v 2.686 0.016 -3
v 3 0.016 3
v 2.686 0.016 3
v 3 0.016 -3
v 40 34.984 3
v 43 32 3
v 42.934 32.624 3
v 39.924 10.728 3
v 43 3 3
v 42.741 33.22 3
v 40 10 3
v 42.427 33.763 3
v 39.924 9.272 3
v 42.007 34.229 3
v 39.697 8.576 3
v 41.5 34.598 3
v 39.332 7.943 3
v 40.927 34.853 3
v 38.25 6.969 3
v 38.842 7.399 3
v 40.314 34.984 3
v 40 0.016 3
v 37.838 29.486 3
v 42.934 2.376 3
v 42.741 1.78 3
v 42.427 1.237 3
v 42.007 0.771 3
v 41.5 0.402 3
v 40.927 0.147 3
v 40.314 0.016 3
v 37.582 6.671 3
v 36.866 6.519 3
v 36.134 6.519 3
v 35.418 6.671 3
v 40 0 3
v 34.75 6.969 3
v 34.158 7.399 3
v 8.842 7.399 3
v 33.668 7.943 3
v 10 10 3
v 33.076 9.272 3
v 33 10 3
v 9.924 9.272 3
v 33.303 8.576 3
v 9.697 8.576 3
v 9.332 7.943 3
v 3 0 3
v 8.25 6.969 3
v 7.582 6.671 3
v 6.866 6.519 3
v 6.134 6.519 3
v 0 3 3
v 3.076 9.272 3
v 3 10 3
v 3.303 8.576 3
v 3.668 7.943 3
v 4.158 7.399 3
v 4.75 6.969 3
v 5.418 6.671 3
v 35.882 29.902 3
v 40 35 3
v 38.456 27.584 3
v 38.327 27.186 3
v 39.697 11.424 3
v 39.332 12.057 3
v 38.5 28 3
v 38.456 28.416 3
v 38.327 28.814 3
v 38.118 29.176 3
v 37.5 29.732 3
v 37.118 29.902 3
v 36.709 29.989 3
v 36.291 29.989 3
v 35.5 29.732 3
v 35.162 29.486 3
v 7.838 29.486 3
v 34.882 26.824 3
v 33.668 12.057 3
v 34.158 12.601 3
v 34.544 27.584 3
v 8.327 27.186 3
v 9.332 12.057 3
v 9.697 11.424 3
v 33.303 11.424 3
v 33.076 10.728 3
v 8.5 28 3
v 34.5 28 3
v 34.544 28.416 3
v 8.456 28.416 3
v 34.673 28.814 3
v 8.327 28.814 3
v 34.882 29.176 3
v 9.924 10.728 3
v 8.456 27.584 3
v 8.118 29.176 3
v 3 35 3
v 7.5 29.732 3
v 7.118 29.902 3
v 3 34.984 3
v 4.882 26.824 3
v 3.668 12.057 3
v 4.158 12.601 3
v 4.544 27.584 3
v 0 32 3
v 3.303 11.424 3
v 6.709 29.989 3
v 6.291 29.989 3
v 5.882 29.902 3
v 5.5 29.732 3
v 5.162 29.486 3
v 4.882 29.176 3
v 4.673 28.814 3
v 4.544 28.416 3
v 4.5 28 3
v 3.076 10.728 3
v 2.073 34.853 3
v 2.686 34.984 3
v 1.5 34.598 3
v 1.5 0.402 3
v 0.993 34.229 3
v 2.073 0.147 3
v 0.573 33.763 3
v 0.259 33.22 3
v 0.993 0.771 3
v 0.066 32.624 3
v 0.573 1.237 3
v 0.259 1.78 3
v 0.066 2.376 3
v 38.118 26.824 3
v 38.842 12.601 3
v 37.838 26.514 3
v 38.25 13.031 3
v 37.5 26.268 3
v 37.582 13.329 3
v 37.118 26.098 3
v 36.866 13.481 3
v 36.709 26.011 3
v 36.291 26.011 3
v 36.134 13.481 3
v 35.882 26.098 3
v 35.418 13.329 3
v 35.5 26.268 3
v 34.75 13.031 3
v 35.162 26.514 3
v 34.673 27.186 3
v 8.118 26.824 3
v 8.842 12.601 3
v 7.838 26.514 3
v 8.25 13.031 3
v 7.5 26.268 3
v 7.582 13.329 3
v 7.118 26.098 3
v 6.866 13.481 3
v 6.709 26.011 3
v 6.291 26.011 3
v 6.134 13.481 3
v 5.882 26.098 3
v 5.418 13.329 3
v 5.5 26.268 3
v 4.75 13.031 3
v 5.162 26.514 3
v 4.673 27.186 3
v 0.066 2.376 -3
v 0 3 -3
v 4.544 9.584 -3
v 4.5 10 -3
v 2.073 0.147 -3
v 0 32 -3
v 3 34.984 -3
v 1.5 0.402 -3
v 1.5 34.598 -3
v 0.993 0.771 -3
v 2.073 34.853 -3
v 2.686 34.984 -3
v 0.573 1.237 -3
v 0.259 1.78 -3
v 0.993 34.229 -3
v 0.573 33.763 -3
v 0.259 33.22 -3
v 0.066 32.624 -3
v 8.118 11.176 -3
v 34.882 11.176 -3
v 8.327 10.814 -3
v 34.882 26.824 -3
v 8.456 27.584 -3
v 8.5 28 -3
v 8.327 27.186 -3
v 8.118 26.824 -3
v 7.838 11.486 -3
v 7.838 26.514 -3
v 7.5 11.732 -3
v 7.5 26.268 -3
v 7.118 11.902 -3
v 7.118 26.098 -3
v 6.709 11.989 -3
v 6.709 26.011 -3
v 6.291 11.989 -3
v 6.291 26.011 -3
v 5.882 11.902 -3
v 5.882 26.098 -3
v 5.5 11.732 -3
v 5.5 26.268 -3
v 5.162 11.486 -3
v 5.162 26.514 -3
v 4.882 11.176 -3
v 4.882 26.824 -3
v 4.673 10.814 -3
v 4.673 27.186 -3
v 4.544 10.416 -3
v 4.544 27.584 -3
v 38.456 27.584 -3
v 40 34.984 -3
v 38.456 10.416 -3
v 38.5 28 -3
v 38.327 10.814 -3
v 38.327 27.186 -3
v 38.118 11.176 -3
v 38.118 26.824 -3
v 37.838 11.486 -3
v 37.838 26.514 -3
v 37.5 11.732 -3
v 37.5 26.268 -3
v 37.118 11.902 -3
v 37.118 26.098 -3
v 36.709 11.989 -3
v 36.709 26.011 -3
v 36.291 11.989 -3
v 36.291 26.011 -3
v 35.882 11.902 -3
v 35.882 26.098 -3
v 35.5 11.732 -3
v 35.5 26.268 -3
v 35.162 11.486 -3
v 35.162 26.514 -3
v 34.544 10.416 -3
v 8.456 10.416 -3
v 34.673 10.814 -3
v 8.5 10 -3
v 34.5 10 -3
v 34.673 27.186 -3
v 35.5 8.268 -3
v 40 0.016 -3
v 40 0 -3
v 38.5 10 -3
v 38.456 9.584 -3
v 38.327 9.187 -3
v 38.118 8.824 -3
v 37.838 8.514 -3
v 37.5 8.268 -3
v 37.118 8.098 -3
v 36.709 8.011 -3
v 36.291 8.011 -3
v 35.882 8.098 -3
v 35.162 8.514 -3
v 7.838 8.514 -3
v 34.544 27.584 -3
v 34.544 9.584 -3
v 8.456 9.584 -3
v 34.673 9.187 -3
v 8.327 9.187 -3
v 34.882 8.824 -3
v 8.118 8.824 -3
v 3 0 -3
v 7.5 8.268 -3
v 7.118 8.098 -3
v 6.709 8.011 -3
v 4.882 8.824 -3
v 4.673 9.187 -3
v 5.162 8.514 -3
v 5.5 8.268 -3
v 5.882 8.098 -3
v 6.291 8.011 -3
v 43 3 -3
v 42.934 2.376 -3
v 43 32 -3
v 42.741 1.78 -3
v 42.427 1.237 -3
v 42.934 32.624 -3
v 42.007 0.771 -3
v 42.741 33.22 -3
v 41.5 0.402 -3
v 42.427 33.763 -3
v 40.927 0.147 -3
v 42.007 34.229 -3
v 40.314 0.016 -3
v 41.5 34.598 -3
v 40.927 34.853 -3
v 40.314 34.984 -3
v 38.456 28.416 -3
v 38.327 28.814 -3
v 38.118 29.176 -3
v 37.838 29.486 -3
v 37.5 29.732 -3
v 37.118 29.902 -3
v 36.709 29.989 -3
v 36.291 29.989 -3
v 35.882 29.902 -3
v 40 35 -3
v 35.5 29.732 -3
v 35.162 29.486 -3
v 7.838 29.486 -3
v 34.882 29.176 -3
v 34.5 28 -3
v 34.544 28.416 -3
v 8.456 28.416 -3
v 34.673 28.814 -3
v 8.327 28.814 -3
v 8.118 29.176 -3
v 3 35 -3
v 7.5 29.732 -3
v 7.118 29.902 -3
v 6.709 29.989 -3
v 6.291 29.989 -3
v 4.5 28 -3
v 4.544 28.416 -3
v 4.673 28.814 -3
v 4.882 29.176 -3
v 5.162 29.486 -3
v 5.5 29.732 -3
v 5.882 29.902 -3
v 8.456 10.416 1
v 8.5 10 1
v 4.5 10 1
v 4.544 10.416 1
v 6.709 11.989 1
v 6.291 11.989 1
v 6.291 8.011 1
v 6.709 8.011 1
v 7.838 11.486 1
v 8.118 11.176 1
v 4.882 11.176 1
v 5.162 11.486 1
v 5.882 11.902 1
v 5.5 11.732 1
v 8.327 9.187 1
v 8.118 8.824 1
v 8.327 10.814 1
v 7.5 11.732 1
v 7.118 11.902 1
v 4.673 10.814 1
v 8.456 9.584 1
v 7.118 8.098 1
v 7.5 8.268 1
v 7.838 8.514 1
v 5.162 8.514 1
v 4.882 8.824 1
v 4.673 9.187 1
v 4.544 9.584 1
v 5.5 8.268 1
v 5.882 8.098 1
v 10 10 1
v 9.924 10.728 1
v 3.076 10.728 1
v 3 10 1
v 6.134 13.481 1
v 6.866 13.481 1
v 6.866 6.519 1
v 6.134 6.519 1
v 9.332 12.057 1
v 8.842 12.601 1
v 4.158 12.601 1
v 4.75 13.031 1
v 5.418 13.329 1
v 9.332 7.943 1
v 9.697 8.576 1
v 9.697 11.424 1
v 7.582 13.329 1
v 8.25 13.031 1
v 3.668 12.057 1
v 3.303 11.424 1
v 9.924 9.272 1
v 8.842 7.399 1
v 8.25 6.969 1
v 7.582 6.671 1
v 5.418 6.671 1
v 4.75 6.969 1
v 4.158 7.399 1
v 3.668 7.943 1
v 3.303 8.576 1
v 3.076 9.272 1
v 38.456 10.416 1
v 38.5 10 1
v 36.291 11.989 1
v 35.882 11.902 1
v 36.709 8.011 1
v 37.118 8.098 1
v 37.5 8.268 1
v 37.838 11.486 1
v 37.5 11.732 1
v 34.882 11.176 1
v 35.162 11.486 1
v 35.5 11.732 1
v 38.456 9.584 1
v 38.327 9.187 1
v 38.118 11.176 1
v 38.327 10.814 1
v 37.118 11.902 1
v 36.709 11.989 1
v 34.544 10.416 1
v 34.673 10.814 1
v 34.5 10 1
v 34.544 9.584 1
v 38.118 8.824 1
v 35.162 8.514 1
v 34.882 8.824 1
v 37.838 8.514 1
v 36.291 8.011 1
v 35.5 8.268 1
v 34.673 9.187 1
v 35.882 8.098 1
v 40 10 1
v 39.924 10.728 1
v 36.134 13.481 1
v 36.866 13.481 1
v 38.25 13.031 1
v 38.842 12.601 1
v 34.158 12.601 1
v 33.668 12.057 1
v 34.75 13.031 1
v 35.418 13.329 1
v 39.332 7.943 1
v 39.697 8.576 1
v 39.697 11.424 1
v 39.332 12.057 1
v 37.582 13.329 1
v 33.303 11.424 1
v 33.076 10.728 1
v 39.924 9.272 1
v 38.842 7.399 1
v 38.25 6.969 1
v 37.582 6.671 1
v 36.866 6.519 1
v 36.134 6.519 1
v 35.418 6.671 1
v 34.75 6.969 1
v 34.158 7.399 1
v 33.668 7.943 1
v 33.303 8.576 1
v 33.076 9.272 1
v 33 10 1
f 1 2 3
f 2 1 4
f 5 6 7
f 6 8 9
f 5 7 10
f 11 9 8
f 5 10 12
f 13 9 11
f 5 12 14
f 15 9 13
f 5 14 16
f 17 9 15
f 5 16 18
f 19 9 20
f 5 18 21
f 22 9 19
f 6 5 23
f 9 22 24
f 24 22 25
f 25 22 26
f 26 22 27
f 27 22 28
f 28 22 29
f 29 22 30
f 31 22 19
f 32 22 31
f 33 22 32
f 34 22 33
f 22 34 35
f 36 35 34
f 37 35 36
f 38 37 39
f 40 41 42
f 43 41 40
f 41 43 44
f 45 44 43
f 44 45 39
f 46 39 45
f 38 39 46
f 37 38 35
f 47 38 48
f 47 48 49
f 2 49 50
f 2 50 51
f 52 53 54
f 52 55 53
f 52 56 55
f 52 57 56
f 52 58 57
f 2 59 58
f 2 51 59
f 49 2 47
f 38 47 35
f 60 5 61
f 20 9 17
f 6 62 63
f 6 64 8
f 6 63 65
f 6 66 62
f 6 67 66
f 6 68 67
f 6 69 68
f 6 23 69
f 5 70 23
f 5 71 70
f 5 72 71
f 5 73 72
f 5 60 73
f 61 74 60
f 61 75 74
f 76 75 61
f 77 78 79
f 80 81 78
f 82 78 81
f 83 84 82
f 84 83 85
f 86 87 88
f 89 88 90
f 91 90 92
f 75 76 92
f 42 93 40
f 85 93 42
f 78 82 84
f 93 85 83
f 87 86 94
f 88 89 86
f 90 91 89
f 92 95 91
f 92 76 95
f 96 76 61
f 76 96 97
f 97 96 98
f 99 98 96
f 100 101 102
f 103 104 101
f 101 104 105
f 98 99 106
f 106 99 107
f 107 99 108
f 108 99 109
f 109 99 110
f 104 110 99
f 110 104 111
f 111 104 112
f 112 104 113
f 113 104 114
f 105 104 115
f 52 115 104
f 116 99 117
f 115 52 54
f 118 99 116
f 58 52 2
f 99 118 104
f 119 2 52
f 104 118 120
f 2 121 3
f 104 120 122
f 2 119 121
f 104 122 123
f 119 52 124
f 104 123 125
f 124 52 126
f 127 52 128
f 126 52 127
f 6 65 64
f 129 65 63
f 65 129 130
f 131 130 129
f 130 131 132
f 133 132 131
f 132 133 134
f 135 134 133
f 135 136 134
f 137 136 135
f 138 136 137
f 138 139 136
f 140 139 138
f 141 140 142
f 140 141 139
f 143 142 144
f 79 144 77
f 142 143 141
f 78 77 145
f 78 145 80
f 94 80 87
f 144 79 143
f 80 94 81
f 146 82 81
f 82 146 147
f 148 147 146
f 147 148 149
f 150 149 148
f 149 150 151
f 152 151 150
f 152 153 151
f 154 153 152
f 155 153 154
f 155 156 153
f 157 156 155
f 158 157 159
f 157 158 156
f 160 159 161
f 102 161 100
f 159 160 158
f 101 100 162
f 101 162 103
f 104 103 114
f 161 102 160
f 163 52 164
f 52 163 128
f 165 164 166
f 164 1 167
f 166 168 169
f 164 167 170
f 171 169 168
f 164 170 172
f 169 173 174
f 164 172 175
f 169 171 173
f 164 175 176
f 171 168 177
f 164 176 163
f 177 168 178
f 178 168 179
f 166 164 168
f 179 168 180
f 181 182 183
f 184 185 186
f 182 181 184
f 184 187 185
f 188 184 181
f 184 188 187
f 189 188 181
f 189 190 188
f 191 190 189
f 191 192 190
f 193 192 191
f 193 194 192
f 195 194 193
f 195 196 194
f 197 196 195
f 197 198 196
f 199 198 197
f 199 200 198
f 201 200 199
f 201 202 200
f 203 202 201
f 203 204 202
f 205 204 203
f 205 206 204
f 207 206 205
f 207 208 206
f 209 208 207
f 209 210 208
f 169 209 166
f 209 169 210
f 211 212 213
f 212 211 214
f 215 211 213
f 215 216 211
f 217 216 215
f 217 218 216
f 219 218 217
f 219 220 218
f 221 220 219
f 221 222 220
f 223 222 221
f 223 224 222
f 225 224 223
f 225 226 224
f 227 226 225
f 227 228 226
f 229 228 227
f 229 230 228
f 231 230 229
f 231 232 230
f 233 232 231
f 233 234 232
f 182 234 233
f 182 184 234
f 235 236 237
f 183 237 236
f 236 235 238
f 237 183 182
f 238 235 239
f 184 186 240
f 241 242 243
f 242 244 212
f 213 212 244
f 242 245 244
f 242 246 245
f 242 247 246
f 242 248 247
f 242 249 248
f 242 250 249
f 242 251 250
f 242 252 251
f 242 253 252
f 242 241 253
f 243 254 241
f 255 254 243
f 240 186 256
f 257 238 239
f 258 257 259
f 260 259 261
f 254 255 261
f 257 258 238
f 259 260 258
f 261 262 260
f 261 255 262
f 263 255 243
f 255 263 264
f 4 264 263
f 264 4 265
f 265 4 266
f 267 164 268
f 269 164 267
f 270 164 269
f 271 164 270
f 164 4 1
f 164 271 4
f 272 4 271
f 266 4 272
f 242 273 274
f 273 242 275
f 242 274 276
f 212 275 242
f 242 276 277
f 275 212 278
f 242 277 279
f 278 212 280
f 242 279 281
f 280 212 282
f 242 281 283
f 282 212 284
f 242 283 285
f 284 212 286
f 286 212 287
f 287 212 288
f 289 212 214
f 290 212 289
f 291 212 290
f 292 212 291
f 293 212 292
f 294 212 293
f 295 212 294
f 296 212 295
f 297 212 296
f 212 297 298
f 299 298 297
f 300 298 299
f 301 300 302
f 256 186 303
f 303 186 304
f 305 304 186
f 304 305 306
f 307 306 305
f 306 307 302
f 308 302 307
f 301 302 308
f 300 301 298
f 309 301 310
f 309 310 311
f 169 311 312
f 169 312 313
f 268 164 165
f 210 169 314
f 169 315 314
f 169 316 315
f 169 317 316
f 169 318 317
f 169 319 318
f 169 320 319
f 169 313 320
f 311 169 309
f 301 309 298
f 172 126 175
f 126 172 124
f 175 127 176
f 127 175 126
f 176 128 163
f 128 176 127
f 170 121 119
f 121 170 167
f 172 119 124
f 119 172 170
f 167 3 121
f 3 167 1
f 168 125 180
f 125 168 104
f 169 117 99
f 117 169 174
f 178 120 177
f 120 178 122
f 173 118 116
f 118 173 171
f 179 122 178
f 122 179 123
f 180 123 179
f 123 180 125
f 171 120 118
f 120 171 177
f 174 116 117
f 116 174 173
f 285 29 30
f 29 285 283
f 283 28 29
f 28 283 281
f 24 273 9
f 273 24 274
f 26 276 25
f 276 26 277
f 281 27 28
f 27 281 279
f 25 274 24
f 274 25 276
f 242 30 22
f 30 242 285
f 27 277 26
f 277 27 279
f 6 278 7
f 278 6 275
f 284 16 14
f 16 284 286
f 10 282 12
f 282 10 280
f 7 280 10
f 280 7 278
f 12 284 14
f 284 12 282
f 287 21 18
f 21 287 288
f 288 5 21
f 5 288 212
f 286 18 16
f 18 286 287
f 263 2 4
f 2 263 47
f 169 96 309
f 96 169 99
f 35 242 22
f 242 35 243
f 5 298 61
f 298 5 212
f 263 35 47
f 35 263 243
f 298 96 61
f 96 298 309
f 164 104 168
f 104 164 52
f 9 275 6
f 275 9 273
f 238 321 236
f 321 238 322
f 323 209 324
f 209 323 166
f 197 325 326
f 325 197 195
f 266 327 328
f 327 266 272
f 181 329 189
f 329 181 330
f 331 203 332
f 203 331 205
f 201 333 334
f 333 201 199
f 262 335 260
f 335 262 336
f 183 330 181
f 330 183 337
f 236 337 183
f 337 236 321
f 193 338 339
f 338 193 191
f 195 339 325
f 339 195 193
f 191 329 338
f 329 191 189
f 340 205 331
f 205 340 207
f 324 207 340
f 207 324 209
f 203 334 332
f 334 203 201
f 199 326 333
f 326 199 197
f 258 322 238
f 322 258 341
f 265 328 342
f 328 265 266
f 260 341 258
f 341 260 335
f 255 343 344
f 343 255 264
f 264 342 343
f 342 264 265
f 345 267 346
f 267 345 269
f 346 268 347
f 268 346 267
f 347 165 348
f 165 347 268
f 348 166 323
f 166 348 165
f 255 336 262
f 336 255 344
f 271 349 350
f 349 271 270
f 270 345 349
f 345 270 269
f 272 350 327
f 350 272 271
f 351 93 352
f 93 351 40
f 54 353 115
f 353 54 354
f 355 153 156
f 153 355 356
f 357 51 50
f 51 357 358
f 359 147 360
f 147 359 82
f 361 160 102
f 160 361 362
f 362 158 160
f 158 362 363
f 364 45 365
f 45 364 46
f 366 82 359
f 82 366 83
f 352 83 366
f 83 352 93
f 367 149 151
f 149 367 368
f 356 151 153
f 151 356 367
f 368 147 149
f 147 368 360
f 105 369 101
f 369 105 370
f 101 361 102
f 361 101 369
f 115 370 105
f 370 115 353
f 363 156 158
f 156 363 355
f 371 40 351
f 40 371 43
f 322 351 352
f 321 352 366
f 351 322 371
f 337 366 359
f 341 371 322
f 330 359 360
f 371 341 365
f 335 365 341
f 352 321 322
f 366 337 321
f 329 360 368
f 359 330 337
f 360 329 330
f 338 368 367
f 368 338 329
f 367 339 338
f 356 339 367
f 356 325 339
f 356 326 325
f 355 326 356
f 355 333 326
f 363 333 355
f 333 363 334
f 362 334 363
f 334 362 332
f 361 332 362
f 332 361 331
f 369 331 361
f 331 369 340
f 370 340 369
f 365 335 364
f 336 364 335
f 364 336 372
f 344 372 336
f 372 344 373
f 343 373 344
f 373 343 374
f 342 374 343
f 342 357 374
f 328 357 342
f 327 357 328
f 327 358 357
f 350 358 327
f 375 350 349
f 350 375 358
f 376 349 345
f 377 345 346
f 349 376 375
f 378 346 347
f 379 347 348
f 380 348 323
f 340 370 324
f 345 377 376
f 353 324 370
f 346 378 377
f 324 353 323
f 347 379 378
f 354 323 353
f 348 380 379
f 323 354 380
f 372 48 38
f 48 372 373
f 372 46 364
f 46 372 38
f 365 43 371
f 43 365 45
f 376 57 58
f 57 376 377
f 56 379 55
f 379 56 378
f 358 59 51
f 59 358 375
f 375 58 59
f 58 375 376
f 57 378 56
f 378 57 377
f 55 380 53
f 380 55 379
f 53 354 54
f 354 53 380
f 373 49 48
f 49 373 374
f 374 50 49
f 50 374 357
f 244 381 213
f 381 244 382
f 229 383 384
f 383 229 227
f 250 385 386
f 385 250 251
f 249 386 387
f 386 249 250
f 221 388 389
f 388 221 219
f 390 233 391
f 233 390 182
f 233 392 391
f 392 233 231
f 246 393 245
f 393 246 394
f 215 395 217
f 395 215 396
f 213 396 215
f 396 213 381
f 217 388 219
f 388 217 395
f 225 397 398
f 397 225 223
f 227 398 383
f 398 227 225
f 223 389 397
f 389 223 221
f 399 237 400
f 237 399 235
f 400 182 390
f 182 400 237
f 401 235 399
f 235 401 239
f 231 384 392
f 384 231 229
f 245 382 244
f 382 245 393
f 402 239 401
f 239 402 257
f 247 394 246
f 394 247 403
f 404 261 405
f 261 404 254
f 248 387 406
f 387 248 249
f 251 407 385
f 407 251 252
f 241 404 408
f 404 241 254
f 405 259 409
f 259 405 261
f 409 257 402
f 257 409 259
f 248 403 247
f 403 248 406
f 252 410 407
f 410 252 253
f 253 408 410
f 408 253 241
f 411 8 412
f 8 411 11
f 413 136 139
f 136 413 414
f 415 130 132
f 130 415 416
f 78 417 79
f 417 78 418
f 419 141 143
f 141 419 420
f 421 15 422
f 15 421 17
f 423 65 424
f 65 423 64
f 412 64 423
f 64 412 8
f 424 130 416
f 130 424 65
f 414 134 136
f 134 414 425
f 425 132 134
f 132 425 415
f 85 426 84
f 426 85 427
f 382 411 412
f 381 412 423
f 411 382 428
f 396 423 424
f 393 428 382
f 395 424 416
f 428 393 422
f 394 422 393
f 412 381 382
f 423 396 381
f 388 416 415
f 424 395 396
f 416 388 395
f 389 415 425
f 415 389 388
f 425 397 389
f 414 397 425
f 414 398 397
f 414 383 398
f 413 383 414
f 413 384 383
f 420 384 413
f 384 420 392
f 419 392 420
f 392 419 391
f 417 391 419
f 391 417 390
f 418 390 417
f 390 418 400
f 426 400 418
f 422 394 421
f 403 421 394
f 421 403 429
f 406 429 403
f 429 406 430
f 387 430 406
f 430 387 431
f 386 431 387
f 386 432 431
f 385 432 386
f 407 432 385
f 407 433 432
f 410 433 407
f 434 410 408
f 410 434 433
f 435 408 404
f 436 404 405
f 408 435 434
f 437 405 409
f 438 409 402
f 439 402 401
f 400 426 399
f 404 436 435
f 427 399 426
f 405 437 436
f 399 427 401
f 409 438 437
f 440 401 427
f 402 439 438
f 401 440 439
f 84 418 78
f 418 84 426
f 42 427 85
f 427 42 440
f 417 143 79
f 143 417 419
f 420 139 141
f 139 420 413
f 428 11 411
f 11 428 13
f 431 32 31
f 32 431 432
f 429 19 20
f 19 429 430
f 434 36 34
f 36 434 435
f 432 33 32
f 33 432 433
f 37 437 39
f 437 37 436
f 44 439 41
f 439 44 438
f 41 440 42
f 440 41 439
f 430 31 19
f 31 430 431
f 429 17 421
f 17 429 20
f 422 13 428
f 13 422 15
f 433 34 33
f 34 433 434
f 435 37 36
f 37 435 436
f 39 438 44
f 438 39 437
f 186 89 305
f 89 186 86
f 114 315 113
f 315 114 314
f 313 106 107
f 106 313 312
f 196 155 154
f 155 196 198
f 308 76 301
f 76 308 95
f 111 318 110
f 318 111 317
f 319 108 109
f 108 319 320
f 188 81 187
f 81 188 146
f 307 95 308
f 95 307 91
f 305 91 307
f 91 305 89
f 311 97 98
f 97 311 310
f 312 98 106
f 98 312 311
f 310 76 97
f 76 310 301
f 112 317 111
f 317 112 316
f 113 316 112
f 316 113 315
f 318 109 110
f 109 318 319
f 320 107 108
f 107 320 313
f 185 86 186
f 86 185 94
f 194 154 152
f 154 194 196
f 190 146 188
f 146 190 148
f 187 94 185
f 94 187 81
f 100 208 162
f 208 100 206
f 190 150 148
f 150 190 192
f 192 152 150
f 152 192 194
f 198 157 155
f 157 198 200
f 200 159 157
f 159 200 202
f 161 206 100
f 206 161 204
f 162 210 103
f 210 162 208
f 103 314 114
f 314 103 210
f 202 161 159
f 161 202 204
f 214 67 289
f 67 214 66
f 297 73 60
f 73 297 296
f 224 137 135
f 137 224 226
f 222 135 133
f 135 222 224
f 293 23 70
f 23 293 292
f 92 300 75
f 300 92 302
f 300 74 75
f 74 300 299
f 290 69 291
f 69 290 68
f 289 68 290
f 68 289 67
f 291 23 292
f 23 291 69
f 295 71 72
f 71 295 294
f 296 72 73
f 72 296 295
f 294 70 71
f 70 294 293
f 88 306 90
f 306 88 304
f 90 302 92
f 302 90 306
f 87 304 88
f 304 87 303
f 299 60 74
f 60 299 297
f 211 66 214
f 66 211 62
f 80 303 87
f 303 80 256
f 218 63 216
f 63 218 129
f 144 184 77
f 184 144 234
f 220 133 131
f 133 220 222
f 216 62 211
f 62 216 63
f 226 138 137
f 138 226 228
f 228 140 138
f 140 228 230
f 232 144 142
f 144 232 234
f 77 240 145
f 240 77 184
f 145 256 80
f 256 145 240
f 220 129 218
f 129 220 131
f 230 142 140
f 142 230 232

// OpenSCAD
// kossel 2020 (bowden) extruder mount - mounts to motor attached to extruder such as Airtripper's Bowden Extruder

use <MCAD/boxes.scad>;

// all screw settings are set for M3 screws
screw_diameter = 4;
screw_head = 7; // screw head diameter
screw_head_height = 2; // use 0 for no screw head indent
screw_hole_offset = 7; // offset of extruder motor mounting holes from the edge
width = 43;
length = 35;
hole_sep = 30;
thickness = 6;

module extruderMount(){
    difference(){
        translate([width/2,length/2,0]) roundedBox([width,length,thickness],3,true,$fn=30);

        translate([width/2,10,0]) for(x=[-1,1]){
            translate([hole_sep/2*x,0,0]) cylinder(h=thickness+1,d=screw_diameter,center=true,$fn=30);
            // screw head indent
            translate([hole_sep/2*x,0,thickness/2-screw_head_height]) cylinder(h=20,d=screw_head,$fn=30);
        }
        
        translate([width/2,length-screw_hole_offset,0]) for(x=[-1,1]){
            translate([hole_sep/2*x,0,0]) cylinder(h=thickness+1,d=screw_diameter,center=true,$fn=30);
        }
    }   
}
extruderMount();
